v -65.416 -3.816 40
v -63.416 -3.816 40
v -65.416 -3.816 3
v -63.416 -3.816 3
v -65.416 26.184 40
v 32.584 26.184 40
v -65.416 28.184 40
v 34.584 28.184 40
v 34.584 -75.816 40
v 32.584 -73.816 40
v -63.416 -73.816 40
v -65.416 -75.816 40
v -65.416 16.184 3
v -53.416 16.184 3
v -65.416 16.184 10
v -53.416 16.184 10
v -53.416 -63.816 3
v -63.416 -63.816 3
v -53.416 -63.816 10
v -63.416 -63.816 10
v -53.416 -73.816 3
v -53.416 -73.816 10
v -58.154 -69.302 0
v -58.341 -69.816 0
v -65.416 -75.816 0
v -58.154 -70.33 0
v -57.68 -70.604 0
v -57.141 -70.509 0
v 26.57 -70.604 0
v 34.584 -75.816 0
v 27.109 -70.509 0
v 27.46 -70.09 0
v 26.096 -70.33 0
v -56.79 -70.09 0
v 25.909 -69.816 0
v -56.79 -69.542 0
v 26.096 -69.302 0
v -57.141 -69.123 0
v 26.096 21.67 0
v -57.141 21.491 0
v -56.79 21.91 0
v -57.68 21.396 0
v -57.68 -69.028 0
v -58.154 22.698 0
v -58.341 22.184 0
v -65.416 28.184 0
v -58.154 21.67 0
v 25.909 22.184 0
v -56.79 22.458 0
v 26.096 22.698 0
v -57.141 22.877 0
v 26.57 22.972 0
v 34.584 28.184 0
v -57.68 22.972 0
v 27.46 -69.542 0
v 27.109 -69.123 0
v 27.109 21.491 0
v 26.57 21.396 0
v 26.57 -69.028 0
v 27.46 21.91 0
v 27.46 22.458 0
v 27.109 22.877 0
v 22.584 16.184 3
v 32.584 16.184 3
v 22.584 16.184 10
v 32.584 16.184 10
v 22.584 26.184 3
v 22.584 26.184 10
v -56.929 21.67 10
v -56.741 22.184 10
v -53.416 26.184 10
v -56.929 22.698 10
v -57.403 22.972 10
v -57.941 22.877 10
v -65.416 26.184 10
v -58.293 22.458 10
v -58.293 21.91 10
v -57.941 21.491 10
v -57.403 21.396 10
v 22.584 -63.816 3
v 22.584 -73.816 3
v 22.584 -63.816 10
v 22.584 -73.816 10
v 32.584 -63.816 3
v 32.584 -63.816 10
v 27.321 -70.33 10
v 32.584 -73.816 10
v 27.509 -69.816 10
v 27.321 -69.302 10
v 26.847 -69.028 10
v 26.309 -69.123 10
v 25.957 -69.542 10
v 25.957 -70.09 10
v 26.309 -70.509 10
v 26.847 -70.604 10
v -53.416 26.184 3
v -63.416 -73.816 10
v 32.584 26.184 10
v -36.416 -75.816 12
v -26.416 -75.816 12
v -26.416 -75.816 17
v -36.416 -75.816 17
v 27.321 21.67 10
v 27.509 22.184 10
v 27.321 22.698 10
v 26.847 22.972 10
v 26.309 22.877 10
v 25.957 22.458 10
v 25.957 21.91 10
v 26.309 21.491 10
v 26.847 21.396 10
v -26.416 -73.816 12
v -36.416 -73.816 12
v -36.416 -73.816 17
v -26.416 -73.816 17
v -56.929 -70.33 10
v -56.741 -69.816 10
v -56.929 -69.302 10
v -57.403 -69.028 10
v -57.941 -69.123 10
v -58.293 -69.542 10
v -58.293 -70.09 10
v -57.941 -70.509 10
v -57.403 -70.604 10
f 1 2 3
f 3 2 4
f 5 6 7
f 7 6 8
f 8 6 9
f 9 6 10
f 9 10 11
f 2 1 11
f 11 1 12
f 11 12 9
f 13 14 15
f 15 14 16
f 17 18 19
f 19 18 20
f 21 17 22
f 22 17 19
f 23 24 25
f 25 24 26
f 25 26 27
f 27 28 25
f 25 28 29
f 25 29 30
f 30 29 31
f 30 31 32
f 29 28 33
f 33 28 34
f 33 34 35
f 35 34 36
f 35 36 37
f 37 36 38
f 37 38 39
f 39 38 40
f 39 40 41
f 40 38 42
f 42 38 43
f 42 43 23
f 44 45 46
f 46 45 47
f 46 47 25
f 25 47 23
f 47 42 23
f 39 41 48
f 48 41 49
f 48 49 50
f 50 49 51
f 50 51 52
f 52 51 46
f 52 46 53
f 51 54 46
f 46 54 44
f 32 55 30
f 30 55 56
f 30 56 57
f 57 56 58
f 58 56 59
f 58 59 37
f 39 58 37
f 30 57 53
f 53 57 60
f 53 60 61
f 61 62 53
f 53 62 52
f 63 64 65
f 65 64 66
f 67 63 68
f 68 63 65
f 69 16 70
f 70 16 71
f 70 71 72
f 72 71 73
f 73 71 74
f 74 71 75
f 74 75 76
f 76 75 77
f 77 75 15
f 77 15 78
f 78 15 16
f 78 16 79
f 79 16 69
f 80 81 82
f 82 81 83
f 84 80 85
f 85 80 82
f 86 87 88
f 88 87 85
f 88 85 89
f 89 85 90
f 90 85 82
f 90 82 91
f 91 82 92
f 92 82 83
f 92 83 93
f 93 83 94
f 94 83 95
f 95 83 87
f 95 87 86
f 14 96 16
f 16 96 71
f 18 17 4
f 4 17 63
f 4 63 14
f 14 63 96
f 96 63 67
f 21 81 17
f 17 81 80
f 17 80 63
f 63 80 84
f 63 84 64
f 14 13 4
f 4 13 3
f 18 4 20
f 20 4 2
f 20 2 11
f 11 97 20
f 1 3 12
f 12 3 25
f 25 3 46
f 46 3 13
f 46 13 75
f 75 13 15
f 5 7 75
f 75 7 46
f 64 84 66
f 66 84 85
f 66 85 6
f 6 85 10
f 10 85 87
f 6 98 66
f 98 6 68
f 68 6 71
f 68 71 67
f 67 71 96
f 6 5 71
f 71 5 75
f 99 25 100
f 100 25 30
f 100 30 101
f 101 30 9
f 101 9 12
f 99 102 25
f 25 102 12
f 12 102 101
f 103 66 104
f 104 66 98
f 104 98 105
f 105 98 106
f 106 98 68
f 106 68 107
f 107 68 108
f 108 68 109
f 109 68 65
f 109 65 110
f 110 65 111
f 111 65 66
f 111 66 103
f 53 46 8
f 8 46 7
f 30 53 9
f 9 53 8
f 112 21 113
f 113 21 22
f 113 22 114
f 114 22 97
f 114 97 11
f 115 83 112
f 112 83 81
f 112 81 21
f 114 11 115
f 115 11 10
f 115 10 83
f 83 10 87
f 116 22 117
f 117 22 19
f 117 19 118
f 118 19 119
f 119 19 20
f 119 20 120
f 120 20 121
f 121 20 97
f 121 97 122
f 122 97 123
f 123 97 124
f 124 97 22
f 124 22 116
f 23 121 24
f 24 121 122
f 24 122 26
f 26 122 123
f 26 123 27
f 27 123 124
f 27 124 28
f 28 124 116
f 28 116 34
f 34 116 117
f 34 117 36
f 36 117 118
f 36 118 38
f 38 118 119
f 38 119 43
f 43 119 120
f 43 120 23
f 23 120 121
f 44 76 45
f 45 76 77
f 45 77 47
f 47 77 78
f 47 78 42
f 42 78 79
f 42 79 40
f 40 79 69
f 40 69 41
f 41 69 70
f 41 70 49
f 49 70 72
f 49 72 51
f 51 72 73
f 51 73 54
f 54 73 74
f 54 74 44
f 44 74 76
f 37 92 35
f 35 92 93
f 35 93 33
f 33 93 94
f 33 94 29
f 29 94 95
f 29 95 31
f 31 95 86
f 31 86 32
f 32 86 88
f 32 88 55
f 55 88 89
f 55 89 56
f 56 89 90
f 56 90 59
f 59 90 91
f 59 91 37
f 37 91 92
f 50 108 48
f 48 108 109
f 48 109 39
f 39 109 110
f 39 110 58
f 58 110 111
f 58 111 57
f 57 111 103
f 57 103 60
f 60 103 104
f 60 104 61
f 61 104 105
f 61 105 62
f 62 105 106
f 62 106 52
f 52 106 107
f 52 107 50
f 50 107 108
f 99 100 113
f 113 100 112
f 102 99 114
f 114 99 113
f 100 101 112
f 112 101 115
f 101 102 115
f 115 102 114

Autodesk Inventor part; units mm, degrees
ref_plane "YZ Plane" through (0, 0, 0) normal (1, 0, 0) x (0, 1, 0)
ref_plane "XZ Plane" through (0, 0, 0) normal (0, 1, 0) x (-1, 0, 0)
ref_plane "XY Plane" through (0, 0, 0) normal (0, 0, 1) x (1, 0, 0)
sketch "Sketch1" plane through (0, 0, 0) normal (0, 0, 1) x (1, 0, 0)
  line L0 (-65.4164, 28.1839) -> (34.5836, 28.1839)
  line L1 (34.5836, 28.1839) -> (34.5836, -75.8161)
  line L2 (34.5836, -75.8161) -> (-65.4164, -75.8161)
  line L3 (-65.4164, -75.8161) -> (-65.4164, 28.1839)
  point P0 (0, 0)
  dimension "d0" = 100
  dimension "d1" = 104
extrude "Extrusion1" add sketch "Sketch1" along normal blind 40
sketch "Sketch2" plane through (0, 0, 40) normal (0, 0, 1) x (1, 0, 0)
  line L0 (-63.4164, 26.1839) -> (32.5836, 26.1839)
  line L1 (32.5836, 26.1839) -> (32.5836, -73.8161)
  line L2 (32.5836, -73.8161) -> (-63.4164, -73.8161)
  line L3 (-63.4164, -73.8161) -> (-63.4164, 26.1839)
  line L4 (34.5836, 28.1839) -> (-65.4164, 28.1839) projected
  line L5 (34.5836, -75.8161) -> (34.5836, 28.1839) projected
  line L6 (-65.4164, 28.1839) -> (-65.4164, -75.8161) projected
  line L7 (-65.4164, -75.8161) -> (34.5836, -75.8161) projected
  point P0 (0, 0)
  dimension "d4" = 2
  dimension "d5" = 2
  dimension "d6" = 2
  dimension "d7" = 2
extrude "Extrusion2" cut sketch "Sketch2" against normal blind 37 contours L0 L1 L2 L3
sketch "Sketch3" plane through (0, 0, 3) normal (0, 0, 1) x (1, 0, 0)
  line L0 (-63.4164, 26.1839) -> (32.5836, 26.1839) projected
  line L1 (-63.4164, 26.1839) -> (-53.4164, 26.1839)
  line L2 (-53.4164, 26.1839) -> (-53.4164, 16.1839)
  line L3 (-53.4164, 16.1839) -> (-63.4164, 16.1839)
  line L4 (-63.4164, 16.1839) -> (-63.4164, 26.1839)
  line L5 (32.5836, 26.1839) -> (22.5836, 26.1839)
  line L6 (22.5836, 26.1839) -> (22.5836, 16.1839)
  line L7 (22.5836, 16.1839) -> (32.5836, 16.1839)
  line L8 (32.5836, 16.1839) -> (32.5836, 26.1839)
  line L9 (32.5836, -73.8161) -> (-63.4164, -73.8161) projected
  line L10 (-63.4164, -73.8161) -> (-53.4164, -73.8161)
  line L11 (-53.4164, -73.8161) -> (-53.4164, -63.8161)
  line L12 (-53.4164, -63.8161) -> (-63.4164, -63.8161)
  line L13 (-63.4164, -63.8161) -> (-63.4164, -73.8161)
  line L14 (32.5836, -73.8161) -> (22.5836, -73.8161)
  line L15 (22.5836, -73.8161) -> (22.5836, -63.8161)
  line L16 (22.5836, -63.8161) -> (32.5836, -63.8161)
  line L17 (32.5836, -63.8161) -> (32.5836, -73.8161)
  point P0 (0, 0)
  dimension "d10" = 10
  dimension "d11" = 10
  dimension "d12" = 10
  dimension "d13" = 10
  dimension "d14" = 10
  dimension "d15" = 10
  dimension "d16" = 10
  dimension "d17" = 10
extrude "Extrusion3" add sketch "Sketch3" along normal blind 7
sketch "Sketch4" plane through (0, 0, 40) normal (0, 0, 1) x (1, 0, 0)
  line L0 (-65.4164, 28.1839) -> (-65.4164, -75.8161) projected
  line L1 (-63.4164, 26.1839) -> (-65.4164, 26.1839)
  line L2 (-65.4164, 26.1839) -> (-65.4164, -3.8161)
  line L3 (-65.4164, -3.8161) -> (-63.4164, -3.8161)
  line L4 (-63.4164, -3.8161) -> (-63.4164, 26.1839)
  point P0 (0, 0)
  dimension "d20" = 30
extrude "Extrusion4" cut sketch "Sketch4" against normal up to surface (30 mm away)
sketch "Sketch5" plane through (0, 0, 10) normal (0, 0, 1) x (1, 0, 0)
  line L0 (-53.4164, 16.1839) -> (-63.4164, 16.1839) projected
  line L1 (-65.4164, 28.1839) -> (-65.4164, -75.8161) projected
  line L2 (-63.4164, 16.1839) -> (-65.4164, 16.1839)
  line L3 (-65.4164, 16.1839) -> (-65.4164, -3.8161)
  line L4 (-65.4164, -3.8161) -> (-63.4164, -3.8161)
  line L5 (-63.4164, -3.8161) -> (-63.4164, 16.1839)
  point P0 (0, 0)
  dimension "d23" = 20
extrude "Extrusion5" cut sketch "Sketch5" against normal up to surface (7 mm away)
sketch "Sketch6" plane through (0, 0, 10) normal (0, 0, 1) x (1, 0, 0)
  circle A0 centre (-57.5414, 22.1839) radius 0.8
  circle A1 centre (26.7086, 22.1839) radius 0.8
  circle A2 centre (26.7086, -69.8161) radius 0.8
  circle A3 centre (-57.5414, -69.8161) radius 0.8
  line L0 (32.5836, -73.8161) -> (-63.4164, -73.8161) projected
  line L1 (32.5836, 26.1839) -> (32.5836, -73.8161) projected
  line L2 (-63.4164, -73.8161) -> (-63.4164, -3.8161) projected
  line L3 (-65.4164, 26.1839) -> (32.5836, 26.1839) projected
  point P0 (0, 0)
  dimension "d26" = 1.6
  dimension "d27" = 1.6
  dimension "d28" = 1.6
  dimension "d29" = 1.6
  dimension "d30" = 4
  dimension "d31" = 5.875
  dimension "d32" = 4
  dimension "d33" = 5.875
  dimension "d34" = 5.875
  dimension "d35" = 5.875
  dimension "d36" = 4
  dimension "d37" = 4
extrude "Extrusion6" cut sketch "Sketch6" against normal through all
sketch "Sketch7" plane through (-63.4164, -73.8161, 40) normal (0, 1, 0) x (1, 0, 0)
  line L0 (27, 23) -> (37, 23)
  line L1 (37, 23) -> (37, 28)
  line L2 (37, 28) -> (27, 28)
  line L3 (27, 28) -> (27, 23)
  line L4 (0, 0) -> (0, 30) projected
  line L5 (86, 37) -> (10, 37) projected
  point P0 (63.4164, 40)
  dimension "d40" = 10
  dimension "d41" = 5
  dimension "d42" = 27
  dimension "d43" = 9
extrude "Extrusion7" cut sketch "Sketch7" against normal through all
properties part number "e_box"
